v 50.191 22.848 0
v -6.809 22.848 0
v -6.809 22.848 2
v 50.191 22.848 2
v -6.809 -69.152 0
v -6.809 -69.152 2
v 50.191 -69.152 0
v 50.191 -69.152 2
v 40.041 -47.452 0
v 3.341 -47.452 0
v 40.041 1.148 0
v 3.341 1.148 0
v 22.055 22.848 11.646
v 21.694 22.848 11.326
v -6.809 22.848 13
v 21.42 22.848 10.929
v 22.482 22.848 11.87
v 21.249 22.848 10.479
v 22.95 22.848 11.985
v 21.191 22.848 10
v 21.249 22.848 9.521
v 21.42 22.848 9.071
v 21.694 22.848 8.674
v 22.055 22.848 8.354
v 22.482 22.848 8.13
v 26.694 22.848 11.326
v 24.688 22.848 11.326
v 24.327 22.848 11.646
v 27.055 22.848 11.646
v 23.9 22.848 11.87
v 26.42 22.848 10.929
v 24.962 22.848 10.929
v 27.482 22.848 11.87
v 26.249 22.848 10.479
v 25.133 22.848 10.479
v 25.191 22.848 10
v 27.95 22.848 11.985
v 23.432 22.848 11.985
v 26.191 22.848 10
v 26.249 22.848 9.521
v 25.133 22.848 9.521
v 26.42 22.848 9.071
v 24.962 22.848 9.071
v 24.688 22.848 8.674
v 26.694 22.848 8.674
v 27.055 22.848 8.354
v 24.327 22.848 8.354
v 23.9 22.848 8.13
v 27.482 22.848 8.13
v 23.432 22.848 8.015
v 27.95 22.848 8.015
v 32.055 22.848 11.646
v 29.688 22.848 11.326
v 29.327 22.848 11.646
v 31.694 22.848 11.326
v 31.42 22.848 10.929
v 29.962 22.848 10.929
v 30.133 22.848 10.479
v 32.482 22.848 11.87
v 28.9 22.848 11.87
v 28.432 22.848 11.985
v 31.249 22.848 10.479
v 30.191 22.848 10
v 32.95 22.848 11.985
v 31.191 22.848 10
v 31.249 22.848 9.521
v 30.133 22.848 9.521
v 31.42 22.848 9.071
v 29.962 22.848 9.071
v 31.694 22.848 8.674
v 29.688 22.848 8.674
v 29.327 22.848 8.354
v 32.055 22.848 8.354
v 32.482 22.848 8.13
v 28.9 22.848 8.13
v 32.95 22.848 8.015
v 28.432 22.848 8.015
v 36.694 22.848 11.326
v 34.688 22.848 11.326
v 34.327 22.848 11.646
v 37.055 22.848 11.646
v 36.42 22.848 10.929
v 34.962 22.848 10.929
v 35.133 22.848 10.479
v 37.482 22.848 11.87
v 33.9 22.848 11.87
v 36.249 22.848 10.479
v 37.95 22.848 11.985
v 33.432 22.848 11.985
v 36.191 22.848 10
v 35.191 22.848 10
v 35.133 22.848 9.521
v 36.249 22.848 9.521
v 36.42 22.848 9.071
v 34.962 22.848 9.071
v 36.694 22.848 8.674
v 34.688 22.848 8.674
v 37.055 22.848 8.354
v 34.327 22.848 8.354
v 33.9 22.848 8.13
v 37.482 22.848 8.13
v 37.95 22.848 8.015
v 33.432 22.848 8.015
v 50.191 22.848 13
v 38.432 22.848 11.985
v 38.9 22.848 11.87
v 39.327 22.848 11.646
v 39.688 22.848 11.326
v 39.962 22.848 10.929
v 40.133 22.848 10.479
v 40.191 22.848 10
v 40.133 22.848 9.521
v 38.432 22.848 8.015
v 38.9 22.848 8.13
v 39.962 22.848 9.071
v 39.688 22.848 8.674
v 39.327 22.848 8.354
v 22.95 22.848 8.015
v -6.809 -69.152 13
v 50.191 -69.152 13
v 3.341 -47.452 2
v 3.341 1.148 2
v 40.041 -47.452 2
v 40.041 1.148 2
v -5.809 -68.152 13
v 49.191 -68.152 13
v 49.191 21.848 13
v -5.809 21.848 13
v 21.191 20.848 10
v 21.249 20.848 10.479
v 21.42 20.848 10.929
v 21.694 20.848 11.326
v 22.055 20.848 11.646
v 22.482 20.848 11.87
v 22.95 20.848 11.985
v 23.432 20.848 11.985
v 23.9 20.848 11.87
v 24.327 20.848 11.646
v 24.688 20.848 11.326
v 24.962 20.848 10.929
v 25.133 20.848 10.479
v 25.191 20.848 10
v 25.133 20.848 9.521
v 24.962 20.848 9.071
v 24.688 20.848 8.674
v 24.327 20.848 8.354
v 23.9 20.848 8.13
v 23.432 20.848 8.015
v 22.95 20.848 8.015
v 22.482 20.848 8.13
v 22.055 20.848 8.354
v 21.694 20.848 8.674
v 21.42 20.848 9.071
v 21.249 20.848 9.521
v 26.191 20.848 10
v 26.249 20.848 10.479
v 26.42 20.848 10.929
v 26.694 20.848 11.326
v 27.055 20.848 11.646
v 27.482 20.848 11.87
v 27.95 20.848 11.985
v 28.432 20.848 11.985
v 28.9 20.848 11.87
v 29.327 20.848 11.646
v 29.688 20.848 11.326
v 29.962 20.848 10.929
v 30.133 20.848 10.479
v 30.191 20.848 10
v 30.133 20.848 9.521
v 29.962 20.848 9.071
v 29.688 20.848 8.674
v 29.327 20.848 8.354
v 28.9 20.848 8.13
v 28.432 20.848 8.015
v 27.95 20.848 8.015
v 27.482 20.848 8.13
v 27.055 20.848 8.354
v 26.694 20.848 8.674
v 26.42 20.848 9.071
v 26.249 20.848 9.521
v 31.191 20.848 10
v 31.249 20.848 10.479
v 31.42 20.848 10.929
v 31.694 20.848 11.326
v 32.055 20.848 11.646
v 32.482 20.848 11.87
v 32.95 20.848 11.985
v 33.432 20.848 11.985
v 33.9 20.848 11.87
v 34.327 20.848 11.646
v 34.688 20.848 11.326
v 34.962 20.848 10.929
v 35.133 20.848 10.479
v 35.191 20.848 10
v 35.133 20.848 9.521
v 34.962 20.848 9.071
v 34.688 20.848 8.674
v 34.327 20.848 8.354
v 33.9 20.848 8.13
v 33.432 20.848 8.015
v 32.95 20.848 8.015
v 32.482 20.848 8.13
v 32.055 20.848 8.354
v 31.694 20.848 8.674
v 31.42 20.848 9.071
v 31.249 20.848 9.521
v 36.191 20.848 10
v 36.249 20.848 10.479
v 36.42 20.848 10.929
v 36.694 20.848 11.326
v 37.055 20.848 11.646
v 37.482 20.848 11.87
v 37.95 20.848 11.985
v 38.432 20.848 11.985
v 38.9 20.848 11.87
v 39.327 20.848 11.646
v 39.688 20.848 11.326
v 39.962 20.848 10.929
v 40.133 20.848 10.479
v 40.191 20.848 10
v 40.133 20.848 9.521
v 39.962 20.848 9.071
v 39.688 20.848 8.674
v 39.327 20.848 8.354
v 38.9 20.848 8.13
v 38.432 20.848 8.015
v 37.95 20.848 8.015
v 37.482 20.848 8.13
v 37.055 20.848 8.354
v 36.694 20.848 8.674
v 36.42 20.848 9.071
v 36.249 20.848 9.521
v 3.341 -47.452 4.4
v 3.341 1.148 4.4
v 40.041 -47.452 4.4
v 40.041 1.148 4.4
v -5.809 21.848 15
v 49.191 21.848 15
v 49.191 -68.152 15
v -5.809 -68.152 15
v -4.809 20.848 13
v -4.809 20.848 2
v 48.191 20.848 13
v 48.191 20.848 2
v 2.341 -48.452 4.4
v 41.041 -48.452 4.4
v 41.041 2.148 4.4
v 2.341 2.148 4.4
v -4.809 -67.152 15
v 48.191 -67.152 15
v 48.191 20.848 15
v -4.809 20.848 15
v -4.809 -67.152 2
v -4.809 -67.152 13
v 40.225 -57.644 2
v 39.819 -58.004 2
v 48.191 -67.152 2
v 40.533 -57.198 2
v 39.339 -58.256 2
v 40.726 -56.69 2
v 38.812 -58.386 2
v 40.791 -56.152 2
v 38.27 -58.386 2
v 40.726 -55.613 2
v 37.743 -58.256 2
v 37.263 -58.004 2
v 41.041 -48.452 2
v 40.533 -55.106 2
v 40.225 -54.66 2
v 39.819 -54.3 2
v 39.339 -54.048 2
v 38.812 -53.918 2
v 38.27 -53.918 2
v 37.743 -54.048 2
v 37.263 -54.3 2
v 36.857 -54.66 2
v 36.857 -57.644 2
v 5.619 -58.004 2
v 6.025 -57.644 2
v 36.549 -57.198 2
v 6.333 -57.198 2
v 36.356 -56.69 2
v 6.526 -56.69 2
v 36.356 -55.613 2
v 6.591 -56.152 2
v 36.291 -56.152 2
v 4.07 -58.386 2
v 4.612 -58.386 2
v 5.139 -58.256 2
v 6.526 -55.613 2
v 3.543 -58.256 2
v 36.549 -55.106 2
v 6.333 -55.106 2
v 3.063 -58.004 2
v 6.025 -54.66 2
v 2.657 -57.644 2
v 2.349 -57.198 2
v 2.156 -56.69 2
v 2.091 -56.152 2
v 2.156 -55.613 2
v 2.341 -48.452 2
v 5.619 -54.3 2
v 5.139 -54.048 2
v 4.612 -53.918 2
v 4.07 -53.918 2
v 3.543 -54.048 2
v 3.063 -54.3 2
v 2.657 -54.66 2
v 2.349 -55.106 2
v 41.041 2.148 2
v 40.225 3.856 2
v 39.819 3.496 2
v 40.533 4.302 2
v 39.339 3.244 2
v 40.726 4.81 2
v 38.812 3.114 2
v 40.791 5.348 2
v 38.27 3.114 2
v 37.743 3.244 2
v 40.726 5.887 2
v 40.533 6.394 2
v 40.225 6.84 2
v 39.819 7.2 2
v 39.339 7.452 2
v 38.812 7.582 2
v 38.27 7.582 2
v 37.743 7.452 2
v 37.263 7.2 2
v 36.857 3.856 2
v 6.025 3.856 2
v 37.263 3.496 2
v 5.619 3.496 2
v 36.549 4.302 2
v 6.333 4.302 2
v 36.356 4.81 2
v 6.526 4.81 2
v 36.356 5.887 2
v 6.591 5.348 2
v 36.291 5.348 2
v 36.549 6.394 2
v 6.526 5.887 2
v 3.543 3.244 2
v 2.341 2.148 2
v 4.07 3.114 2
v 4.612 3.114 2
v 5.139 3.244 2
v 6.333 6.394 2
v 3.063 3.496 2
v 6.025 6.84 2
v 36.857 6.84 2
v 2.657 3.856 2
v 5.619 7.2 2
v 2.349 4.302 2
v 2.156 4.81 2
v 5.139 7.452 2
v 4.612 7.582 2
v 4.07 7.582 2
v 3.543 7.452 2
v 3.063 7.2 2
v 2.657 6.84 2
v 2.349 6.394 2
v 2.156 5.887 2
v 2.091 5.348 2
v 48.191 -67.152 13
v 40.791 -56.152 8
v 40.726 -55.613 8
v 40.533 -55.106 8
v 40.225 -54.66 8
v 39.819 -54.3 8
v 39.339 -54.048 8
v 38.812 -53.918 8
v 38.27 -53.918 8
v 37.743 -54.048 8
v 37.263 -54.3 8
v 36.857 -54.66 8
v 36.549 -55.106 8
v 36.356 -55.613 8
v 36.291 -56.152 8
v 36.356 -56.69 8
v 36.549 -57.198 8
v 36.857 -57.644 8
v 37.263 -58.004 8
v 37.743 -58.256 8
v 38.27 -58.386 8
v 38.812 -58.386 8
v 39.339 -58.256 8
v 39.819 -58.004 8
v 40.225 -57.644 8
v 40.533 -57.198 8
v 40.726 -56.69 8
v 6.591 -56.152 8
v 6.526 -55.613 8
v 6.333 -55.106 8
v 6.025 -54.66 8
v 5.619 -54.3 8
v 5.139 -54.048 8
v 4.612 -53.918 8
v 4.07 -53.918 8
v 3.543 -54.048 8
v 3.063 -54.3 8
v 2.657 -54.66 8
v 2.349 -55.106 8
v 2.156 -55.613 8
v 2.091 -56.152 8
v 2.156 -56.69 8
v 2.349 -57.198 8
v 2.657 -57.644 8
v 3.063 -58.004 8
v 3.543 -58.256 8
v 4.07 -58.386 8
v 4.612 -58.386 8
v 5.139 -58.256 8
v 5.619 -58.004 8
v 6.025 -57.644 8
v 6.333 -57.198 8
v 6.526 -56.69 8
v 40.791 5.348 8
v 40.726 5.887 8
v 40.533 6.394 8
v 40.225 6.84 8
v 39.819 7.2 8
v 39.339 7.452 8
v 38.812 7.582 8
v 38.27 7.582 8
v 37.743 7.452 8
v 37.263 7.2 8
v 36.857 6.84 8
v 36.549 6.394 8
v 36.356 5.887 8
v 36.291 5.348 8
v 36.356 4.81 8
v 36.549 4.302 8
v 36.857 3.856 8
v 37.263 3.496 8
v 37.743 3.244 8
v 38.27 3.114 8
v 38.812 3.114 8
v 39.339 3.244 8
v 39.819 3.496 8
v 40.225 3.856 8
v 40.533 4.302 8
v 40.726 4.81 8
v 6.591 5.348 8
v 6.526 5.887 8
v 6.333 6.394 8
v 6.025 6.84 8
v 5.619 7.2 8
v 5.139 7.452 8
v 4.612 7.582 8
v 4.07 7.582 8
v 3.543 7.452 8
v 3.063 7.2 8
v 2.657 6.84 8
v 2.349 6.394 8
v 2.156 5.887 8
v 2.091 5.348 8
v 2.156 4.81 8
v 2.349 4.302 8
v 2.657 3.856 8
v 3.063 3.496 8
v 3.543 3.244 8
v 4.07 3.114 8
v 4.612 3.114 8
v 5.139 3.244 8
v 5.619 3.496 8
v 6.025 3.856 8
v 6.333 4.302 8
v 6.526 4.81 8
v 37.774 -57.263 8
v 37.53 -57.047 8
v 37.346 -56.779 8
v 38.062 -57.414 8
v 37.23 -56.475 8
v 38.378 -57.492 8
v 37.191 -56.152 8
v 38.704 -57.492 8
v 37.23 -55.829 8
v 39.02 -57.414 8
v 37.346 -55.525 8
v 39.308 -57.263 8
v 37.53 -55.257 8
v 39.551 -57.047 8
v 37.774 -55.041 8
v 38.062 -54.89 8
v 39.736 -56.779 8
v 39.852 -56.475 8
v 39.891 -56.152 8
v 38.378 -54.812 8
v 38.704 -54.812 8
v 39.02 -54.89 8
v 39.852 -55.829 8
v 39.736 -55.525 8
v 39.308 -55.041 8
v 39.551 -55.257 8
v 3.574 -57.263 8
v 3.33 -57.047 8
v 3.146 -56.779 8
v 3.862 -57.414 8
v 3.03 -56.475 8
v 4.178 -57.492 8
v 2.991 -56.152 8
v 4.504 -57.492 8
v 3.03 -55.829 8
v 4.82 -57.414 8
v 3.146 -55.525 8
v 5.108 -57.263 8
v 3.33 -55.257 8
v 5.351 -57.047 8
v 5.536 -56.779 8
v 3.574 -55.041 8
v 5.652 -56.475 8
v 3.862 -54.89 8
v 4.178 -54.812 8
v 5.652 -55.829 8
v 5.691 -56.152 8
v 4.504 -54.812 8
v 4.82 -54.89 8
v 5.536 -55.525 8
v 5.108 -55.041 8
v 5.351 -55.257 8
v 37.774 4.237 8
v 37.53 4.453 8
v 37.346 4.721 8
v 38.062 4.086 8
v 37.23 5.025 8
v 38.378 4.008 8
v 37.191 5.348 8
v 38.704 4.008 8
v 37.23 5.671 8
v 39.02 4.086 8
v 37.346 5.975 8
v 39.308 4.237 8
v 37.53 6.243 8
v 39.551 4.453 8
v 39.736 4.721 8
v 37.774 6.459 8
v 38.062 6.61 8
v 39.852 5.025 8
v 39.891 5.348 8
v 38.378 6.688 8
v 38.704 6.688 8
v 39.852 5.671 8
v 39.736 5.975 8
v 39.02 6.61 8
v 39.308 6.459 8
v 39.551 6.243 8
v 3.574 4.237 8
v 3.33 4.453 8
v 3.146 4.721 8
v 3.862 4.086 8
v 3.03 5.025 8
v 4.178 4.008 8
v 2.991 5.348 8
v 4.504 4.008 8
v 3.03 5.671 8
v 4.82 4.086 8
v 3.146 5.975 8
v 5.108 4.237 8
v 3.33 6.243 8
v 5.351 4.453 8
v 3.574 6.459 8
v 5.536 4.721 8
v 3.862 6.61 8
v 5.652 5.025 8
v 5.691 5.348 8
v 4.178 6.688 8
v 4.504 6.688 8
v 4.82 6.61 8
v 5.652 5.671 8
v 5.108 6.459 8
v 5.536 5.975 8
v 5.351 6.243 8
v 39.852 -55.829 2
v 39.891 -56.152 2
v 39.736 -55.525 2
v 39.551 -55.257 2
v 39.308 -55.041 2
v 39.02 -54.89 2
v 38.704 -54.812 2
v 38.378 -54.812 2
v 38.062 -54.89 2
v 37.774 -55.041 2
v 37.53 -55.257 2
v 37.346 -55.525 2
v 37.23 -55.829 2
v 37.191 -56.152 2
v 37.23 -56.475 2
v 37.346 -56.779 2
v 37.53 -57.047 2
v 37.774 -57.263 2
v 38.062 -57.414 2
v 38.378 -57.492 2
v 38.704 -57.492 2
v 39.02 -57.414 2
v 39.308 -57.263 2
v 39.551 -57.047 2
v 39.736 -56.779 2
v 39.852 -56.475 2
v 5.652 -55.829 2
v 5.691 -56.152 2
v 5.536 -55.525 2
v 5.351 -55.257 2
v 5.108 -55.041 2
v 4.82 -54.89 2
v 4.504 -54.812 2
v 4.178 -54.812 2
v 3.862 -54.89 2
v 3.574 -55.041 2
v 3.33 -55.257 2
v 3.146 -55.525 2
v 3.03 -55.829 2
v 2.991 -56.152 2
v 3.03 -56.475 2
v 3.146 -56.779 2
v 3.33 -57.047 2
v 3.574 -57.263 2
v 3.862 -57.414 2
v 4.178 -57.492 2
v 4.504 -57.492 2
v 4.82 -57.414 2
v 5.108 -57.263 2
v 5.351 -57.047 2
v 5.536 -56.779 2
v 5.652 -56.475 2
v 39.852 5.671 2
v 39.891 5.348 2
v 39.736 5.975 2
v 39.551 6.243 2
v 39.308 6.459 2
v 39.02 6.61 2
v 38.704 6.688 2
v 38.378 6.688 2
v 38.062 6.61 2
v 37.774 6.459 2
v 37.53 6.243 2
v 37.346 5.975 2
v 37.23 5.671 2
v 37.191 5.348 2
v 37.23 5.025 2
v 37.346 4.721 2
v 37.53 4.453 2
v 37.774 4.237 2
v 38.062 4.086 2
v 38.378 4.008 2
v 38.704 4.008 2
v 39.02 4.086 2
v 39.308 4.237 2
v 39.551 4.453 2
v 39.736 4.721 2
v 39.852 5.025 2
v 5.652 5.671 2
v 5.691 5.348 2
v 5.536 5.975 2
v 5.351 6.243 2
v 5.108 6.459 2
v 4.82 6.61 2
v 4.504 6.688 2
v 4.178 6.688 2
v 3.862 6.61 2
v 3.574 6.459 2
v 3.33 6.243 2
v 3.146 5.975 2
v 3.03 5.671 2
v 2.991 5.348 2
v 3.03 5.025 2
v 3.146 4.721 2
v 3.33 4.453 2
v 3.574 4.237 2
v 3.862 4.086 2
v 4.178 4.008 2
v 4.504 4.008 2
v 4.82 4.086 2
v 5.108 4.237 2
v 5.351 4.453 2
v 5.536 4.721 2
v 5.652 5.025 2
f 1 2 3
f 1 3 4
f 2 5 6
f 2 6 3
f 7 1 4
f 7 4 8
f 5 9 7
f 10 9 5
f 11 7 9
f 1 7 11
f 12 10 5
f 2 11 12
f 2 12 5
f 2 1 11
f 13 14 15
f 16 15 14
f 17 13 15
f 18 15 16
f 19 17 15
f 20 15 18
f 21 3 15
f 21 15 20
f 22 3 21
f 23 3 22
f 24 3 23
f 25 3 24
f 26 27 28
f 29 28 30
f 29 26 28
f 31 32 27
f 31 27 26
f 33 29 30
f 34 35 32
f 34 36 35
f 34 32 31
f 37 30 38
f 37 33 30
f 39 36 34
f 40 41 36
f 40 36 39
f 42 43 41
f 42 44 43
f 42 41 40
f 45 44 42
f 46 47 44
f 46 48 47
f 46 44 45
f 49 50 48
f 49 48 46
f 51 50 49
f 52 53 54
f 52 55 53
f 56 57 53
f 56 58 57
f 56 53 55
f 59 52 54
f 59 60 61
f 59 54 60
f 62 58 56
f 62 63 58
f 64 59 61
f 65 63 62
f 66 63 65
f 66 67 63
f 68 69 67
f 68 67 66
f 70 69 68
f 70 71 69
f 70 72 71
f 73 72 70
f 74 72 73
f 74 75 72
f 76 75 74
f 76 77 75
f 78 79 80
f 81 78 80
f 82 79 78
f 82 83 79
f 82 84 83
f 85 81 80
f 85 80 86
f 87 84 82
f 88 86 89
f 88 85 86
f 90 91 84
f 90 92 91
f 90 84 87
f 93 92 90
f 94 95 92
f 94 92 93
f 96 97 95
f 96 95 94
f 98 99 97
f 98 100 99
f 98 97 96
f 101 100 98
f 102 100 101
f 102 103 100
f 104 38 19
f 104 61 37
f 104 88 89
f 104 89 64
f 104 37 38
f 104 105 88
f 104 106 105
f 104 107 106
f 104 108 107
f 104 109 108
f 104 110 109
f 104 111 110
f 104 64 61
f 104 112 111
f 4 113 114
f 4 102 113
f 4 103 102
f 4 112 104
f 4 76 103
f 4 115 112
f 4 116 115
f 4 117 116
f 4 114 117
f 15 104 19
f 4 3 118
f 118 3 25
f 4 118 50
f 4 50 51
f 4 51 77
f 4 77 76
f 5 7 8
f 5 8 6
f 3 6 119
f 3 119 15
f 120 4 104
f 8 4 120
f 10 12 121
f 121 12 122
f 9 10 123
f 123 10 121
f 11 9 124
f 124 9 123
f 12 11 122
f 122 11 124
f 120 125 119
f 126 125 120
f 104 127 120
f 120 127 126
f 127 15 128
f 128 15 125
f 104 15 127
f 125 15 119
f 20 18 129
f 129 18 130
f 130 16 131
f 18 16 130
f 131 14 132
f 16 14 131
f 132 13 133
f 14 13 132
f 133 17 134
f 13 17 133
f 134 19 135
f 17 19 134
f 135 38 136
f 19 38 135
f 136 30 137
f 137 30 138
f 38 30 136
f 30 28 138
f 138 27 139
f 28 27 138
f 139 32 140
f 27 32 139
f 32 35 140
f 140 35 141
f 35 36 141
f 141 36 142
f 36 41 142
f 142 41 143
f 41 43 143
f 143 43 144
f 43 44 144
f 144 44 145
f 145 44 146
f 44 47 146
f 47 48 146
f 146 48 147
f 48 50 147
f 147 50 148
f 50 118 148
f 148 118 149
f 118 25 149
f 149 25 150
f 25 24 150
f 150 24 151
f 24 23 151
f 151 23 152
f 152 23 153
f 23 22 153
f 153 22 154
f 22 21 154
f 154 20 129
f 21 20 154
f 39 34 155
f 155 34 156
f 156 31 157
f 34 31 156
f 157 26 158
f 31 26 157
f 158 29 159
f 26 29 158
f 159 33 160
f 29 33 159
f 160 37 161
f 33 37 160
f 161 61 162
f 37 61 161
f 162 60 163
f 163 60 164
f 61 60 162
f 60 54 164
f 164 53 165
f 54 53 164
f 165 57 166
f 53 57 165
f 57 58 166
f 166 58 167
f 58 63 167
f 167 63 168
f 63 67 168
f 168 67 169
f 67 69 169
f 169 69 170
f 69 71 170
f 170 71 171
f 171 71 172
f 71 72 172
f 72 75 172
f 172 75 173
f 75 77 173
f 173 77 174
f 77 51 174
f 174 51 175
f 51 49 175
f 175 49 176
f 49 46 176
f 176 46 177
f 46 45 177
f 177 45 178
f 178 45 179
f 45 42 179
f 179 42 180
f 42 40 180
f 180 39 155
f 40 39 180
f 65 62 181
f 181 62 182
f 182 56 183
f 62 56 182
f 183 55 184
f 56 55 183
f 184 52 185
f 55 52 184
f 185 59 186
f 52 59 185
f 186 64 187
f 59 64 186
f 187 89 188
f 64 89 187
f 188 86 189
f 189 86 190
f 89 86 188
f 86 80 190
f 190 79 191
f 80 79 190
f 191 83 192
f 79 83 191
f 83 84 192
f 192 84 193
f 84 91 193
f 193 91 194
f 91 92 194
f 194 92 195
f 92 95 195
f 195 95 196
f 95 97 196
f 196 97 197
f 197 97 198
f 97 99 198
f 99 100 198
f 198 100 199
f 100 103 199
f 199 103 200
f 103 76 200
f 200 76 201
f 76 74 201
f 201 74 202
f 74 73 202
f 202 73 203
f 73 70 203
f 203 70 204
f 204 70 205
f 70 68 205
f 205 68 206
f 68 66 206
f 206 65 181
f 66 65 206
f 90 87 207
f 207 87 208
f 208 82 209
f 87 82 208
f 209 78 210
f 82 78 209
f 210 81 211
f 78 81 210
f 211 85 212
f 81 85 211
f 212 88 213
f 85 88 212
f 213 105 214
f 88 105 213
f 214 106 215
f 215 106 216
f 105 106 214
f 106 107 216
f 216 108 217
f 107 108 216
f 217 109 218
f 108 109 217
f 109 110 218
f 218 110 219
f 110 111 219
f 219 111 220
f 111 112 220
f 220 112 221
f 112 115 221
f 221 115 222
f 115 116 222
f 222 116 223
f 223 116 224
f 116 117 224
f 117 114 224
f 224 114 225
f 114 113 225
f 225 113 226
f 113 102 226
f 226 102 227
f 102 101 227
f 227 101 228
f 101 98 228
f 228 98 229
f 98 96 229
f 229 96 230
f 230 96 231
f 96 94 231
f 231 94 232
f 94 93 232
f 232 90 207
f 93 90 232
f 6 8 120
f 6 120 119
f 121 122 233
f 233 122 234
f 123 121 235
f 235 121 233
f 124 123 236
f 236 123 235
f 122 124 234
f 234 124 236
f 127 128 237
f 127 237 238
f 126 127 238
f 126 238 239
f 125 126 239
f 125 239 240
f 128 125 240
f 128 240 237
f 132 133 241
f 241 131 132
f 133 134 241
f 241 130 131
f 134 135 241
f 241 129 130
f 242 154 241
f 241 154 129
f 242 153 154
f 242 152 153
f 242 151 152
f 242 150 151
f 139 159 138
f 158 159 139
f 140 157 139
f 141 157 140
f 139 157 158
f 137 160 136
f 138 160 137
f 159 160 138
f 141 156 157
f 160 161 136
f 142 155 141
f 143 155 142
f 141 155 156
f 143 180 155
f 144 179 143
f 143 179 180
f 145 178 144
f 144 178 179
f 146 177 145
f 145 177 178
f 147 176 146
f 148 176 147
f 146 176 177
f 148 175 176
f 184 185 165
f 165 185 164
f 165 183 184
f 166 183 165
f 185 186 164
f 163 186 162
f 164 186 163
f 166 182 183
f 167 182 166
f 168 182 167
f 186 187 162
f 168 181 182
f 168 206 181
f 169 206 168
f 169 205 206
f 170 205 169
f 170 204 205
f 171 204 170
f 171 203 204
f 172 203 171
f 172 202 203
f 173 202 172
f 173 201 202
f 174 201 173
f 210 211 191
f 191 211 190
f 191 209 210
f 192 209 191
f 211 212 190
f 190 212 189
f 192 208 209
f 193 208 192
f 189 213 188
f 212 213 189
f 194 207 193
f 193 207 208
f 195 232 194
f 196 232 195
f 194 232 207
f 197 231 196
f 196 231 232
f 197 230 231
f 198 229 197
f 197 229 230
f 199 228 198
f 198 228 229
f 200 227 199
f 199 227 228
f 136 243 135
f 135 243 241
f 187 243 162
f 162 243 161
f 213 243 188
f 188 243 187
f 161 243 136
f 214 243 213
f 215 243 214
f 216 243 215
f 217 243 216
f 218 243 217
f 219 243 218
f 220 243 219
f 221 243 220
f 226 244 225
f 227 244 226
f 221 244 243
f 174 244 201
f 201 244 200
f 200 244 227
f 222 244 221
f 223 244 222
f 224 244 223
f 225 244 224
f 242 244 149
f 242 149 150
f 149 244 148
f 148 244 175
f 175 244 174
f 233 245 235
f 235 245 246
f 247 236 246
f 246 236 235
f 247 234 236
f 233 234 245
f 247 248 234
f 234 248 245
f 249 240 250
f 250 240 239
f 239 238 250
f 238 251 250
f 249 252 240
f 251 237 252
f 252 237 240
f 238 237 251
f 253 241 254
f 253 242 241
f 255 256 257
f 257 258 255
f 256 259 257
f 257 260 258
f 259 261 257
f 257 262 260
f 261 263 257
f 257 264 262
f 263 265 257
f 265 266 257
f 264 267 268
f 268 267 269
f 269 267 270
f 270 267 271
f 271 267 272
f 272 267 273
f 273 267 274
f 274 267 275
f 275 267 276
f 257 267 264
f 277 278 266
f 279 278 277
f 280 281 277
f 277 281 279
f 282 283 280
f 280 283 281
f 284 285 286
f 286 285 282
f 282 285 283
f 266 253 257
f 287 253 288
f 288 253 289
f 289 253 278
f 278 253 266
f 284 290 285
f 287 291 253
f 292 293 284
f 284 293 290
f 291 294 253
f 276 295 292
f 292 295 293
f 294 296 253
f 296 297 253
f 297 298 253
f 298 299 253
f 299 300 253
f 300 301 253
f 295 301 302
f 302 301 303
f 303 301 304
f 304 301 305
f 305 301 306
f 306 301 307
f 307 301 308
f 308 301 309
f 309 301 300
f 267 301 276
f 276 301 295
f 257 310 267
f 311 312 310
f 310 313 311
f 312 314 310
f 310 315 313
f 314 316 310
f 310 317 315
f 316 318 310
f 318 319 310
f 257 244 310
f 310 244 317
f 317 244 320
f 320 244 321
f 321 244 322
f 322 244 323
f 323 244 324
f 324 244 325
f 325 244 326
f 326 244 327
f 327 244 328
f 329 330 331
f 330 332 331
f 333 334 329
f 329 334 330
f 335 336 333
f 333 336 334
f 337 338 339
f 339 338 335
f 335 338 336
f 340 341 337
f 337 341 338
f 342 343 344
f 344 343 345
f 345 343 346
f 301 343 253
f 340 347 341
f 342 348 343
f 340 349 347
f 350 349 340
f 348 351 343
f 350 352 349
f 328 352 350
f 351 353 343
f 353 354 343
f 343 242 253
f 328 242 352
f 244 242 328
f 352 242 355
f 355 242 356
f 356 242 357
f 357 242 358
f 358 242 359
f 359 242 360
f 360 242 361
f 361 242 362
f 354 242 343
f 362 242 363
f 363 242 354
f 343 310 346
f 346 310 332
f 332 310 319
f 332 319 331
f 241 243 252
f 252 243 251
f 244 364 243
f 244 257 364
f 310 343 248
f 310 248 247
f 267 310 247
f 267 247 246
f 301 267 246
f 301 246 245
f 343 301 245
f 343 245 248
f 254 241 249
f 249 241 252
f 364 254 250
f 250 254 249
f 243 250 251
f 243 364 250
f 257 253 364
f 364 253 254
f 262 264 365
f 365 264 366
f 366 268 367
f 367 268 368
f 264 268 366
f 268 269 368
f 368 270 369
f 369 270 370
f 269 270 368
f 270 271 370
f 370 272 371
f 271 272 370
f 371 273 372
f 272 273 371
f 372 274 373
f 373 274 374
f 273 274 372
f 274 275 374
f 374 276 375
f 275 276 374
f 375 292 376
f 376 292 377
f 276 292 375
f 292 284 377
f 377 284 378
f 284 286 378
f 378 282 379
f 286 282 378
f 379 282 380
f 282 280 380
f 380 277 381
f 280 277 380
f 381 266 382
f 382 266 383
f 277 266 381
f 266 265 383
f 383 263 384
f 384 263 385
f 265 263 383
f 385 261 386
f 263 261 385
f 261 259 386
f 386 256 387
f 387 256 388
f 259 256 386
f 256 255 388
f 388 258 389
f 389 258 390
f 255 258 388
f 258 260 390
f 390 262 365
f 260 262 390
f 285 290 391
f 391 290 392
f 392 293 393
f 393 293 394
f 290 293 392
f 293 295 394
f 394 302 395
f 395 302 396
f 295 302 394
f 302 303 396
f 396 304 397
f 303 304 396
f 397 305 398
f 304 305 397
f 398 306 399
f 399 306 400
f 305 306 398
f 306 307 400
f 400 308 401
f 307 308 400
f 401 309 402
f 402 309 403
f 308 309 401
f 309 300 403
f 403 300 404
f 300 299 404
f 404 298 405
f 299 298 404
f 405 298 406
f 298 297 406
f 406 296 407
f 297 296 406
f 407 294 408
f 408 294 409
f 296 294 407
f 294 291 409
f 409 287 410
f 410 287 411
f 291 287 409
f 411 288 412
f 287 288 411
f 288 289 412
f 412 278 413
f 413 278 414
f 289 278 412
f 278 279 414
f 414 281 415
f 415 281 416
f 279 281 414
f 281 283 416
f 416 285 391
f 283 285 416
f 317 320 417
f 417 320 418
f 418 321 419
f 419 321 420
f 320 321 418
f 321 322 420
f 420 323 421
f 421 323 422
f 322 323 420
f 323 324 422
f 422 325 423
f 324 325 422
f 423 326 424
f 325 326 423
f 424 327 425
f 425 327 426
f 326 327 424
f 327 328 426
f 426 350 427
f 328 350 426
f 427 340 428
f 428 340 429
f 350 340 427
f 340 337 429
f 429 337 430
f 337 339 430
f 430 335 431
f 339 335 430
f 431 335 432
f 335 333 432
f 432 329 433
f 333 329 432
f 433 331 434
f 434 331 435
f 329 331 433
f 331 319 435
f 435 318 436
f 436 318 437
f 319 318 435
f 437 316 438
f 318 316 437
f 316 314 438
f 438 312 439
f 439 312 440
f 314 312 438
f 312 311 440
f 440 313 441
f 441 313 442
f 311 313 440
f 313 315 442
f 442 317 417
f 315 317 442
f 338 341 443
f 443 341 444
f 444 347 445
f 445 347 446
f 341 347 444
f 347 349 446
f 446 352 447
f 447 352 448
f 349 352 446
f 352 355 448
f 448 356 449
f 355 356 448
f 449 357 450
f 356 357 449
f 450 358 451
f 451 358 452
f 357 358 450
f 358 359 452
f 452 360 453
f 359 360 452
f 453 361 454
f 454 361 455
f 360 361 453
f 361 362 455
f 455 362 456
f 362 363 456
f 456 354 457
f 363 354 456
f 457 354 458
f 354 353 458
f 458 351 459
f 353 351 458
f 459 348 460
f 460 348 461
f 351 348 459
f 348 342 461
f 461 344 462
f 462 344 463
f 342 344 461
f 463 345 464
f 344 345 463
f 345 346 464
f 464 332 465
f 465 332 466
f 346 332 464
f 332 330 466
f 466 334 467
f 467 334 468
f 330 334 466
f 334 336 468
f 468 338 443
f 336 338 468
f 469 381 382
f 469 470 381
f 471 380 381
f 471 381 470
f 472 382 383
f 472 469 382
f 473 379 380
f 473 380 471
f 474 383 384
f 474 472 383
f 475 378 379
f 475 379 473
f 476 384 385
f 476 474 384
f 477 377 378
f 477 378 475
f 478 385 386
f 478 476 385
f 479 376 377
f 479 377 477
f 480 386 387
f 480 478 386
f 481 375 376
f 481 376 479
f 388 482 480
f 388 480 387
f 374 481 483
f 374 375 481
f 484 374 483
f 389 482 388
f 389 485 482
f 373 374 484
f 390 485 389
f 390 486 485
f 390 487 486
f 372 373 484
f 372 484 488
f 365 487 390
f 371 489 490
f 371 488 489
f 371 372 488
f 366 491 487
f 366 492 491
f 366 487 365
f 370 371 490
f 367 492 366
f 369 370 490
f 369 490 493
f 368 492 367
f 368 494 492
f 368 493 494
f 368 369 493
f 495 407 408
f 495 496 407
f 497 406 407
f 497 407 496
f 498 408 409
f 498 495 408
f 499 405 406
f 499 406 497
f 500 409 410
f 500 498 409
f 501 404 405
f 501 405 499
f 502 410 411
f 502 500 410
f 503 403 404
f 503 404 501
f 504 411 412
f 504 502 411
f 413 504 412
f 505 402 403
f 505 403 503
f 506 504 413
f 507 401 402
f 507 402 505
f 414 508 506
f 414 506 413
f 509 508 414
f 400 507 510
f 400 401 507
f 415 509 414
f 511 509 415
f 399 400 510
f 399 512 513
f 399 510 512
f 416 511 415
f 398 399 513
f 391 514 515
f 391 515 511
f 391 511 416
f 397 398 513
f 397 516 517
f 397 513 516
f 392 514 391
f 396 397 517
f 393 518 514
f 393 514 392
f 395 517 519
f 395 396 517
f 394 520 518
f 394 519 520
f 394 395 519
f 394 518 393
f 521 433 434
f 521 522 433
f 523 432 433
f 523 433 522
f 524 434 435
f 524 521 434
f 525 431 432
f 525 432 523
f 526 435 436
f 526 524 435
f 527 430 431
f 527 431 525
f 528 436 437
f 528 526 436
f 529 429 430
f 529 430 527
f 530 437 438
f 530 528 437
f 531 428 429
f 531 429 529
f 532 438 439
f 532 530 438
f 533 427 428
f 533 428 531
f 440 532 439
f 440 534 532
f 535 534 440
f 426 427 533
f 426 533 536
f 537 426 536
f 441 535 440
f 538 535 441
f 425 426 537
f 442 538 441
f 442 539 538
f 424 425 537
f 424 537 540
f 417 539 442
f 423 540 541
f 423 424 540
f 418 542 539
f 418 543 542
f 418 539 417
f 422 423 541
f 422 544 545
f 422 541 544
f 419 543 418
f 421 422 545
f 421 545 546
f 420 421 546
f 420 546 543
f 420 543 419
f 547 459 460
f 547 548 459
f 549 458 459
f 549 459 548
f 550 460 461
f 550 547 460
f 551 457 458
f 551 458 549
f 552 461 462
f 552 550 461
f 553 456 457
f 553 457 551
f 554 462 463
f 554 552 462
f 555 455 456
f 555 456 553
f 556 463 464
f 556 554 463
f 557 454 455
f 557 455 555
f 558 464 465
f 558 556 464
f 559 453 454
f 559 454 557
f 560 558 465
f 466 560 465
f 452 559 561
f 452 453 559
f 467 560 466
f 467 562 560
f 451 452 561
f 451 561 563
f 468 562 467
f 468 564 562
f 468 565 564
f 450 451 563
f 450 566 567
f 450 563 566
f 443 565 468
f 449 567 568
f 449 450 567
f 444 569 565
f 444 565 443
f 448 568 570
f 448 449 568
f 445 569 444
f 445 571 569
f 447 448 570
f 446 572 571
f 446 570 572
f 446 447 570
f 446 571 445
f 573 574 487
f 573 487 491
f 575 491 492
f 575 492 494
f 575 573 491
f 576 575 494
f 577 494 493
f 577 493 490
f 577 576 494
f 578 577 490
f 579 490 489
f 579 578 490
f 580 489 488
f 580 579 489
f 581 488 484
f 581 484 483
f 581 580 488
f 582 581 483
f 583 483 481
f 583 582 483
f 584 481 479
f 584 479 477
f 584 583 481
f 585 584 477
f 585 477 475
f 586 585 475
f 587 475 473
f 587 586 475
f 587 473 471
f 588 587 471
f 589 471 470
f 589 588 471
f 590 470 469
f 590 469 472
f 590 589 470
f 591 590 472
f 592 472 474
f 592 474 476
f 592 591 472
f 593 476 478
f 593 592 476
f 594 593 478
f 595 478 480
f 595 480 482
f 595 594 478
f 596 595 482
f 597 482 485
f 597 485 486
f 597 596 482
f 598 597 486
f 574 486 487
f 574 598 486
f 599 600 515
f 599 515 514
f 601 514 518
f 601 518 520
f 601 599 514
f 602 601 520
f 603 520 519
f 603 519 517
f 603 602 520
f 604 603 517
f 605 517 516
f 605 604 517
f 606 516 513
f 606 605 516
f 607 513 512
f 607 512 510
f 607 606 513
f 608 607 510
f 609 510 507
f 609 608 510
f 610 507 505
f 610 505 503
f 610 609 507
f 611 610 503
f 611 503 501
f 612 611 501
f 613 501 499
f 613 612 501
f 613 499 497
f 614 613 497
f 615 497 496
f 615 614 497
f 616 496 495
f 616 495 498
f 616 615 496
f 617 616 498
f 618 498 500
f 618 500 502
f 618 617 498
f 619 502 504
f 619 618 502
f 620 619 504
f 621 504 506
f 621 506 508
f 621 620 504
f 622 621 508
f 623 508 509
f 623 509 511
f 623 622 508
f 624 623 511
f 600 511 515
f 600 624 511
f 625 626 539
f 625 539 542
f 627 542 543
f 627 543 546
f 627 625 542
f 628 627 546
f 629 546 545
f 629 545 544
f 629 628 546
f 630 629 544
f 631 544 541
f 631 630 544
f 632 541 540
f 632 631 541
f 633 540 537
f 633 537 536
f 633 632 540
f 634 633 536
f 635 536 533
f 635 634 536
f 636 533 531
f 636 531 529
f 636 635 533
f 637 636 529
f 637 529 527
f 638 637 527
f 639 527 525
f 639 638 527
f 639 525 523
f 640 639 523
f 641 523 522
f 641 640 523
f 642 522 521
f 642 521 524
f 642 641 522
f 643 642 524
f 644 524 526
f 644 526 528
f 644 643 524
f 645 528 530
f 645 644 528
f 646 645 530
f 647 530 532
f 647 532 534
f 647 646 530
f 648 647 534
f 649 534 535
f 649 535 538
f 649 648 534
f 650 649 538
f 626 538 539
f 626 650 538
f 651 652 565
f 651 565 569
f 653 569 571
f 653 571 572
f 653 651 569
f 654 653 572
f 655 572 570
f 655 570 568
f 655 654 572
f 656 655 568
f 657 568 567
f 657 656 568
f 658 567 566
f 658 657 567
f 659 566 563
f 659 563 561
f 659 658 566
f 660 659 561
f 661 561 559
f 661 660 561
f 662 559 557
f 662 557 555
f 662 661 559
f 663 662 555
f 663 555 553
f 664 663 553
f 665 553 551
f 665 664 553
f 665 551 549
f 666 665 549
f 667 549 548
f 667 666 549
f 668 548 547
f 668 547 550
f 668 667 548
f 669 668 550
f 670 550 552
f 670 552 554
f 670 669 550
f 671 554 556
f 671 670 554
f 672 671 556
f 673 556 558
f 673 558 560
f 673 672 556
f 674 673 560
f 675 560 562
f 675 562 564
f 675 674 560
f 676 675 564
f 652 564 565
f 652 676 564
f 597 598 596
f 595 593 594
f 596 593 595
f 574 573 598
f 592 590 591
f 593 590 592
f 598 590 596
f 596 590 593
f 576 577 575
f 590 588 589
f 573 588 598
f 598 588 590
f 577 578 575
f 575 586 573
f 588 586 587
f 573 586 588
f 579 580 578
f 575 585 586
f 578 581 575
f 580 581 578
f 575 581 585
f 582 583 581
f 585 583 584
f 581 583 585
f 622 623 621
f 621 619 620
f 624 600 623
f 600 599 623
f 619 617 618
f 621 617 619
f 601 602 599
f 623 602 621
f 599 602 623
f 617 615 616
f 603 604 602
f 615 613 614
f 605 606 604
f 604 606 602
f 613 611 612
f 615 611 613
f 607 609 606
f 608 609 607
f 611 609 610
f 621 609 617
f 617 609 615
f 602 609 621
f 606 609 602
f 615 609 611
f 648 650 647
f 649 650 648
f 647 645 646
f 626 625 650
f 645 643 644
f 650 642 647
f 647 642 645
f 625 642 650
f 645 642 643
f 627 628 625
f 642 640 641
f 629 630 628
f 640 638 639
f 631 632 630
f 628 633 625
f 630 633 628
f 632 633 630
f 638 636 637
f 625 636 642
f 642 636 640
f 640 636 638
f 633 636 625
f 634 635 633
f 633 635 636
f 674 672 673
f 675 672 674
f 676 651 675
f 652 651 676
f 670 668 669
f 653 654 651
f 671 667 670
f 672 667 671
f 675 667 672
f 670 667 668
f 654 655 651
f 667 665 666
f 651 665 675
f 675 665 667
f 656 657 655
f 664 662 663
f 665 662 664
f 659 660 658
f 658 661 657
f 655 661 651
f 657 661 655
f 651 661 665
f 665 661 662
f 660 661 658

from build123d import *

# Parameters (mm, degrees)
SKETCH_W      = 57
SKETCH_H      = 92
SKETCH_W_2    = 36.7
SKETCH_H_2    = 48.6
PAD_DEPTH     = 2
SKETCH001_R   = 2.25
SKETCH001_R_2 = 1.35
PAD001_DEPTH  = 6
SKETCH002_W   = 57
SKETCH002_H   = 92
SKETCH002_W_2 = 53
SKETCH002_H_2 = 88
PAD002_DEPTH  = 11
SKETCH007_W   = 38.7
SKETCH007_H   = 50.6
SKETCH007_W_2 = 36.7
SKETCH007_H_2 = 48.6
PAD005_DEPTH  = 2.4
SKETCH008_W   = 55
SKETCH008_H   = 90
SKETCH008_W_2 = 53
SKETCH008_H_2 = 88
PAD006_DEPTH  = 2
SKETCH009_R   = 2
POCKET_DEPTH  = 5


with BuildPart() as part:
    # Sketch → Pad (new body)
    with BuildSketch(Plane.XY):
        with Locations((21.690942, -23.151951)):
            Rectangle(SKETCH_W, SKETCH_H)
        with Locations((21.690942, -23.151951)):
            Rectangle(SKETCH_W_2, SKETCH_H_2, mode=Mode.SUBTRACT)
    extrude(amount=PAD_DEPTH)

    # Sketch001 (on Face10 of Pad) → Pad001 (join)
    with BuildSketch(Plane.XY.offset(2)):
        with Locations((4.340942, 5.348049)):
            Circle(SKETCH001_R)
        with Locations((4.340942, 5.348049)):
            Circle(SKETCH001_R_2, mode=Mode.SUBTRACT)
        with Locations((38.540942, 5.348049)):
            Circle(SKETCH001_R)
        with Locations((38.540942, 5.348049)):
            Circle(SKETCH001_R_2, mode=Mode.SUBTRACT)
        with Locations((4.340942, -56.151951)):
            Circle(SKETCH001_R)
        with Locations((4.340942, -56.151951)):
            Circle(SKETCH001_R_2, mode=Mode.SUBTRACT)
        with Locations((38.540942, -56.151951)):
            Circle(SKETCH001_R)
        with Locations((38.540942, -56.151951)):
            Circle(SKETCH001_R_2, mode=Mode.SUBTRACT)
    extrude(amount=PAD001_DEPTH)

    # Sketch002 (on Face5 of Pad001) → Pad002 (join)
    with BuildSketch(Plane.XY.offset(2)):
        with Locations((21.690942, -23.151951)):
            Rectangle(SKETCH002_W, SKETCH002_H)
        with Locations((21.690942, -23.151951)):
            Rectangle(SKETCH002_W_2, SKETCH002_H_2, mode=Mode.SUBTRACT)
    extrude(amount=PAD002_DEPTH)

    # Sketch007 (on Face15 of Pad002) → Pad005 (join)
    with BuildSketch(Plane.XY.offset(2)):
        with Locations((21.690942, -23.151951)):
            Rectangle(SKETCH007_W, SKETCH007_H)
        with Locations((21.690942, -23.151951)):
            Rectangle(SKETCH007_W_2, SKETCH007_H_2, mode=Mode.SUBTRACT)
    extrude(amount=PAD005_DEPTH)

    # Sketch008 (on Face13 of Pad002) → Pad006 (join)
    with BuildSketch(Plane.XY.offset(13)):
        with Locations((21.690942, -23.151951)):
            Rectangle(SKETCH008_W, SKETCH008_H)
        with Locations((21.690942, -23.151951)):
            Rectangle(SKETCH008_W_2, SKETCH008_H_2, mode=Mode.SUBTRACT)
    extrude(amount=PAD006_DEPTH)

    # Sketch009 (on Face5 of Pad006) → Pocket (cut)
    with BuildSketch(Plane(origin=(0, 22.848049, 0), x_dir=(-1, 0, 0), z_dir=(0, 1, 0))):
        with Locations((-38.190942, 10)):
            Circle(SKETCH009_R)
        with Locations((-33.190942, 10)):
            Circle(SKETCH009_R)
        with Locations((-28.190942, 10)):
            Circle(SKETCH009_R)
        with Locations((-23.190942, 10)):
            Circle(SKETCH009_R)
    extrude(amount=-POCKET_DEPTH, mode=Mode.SUBTRACT)


solid = part.part
